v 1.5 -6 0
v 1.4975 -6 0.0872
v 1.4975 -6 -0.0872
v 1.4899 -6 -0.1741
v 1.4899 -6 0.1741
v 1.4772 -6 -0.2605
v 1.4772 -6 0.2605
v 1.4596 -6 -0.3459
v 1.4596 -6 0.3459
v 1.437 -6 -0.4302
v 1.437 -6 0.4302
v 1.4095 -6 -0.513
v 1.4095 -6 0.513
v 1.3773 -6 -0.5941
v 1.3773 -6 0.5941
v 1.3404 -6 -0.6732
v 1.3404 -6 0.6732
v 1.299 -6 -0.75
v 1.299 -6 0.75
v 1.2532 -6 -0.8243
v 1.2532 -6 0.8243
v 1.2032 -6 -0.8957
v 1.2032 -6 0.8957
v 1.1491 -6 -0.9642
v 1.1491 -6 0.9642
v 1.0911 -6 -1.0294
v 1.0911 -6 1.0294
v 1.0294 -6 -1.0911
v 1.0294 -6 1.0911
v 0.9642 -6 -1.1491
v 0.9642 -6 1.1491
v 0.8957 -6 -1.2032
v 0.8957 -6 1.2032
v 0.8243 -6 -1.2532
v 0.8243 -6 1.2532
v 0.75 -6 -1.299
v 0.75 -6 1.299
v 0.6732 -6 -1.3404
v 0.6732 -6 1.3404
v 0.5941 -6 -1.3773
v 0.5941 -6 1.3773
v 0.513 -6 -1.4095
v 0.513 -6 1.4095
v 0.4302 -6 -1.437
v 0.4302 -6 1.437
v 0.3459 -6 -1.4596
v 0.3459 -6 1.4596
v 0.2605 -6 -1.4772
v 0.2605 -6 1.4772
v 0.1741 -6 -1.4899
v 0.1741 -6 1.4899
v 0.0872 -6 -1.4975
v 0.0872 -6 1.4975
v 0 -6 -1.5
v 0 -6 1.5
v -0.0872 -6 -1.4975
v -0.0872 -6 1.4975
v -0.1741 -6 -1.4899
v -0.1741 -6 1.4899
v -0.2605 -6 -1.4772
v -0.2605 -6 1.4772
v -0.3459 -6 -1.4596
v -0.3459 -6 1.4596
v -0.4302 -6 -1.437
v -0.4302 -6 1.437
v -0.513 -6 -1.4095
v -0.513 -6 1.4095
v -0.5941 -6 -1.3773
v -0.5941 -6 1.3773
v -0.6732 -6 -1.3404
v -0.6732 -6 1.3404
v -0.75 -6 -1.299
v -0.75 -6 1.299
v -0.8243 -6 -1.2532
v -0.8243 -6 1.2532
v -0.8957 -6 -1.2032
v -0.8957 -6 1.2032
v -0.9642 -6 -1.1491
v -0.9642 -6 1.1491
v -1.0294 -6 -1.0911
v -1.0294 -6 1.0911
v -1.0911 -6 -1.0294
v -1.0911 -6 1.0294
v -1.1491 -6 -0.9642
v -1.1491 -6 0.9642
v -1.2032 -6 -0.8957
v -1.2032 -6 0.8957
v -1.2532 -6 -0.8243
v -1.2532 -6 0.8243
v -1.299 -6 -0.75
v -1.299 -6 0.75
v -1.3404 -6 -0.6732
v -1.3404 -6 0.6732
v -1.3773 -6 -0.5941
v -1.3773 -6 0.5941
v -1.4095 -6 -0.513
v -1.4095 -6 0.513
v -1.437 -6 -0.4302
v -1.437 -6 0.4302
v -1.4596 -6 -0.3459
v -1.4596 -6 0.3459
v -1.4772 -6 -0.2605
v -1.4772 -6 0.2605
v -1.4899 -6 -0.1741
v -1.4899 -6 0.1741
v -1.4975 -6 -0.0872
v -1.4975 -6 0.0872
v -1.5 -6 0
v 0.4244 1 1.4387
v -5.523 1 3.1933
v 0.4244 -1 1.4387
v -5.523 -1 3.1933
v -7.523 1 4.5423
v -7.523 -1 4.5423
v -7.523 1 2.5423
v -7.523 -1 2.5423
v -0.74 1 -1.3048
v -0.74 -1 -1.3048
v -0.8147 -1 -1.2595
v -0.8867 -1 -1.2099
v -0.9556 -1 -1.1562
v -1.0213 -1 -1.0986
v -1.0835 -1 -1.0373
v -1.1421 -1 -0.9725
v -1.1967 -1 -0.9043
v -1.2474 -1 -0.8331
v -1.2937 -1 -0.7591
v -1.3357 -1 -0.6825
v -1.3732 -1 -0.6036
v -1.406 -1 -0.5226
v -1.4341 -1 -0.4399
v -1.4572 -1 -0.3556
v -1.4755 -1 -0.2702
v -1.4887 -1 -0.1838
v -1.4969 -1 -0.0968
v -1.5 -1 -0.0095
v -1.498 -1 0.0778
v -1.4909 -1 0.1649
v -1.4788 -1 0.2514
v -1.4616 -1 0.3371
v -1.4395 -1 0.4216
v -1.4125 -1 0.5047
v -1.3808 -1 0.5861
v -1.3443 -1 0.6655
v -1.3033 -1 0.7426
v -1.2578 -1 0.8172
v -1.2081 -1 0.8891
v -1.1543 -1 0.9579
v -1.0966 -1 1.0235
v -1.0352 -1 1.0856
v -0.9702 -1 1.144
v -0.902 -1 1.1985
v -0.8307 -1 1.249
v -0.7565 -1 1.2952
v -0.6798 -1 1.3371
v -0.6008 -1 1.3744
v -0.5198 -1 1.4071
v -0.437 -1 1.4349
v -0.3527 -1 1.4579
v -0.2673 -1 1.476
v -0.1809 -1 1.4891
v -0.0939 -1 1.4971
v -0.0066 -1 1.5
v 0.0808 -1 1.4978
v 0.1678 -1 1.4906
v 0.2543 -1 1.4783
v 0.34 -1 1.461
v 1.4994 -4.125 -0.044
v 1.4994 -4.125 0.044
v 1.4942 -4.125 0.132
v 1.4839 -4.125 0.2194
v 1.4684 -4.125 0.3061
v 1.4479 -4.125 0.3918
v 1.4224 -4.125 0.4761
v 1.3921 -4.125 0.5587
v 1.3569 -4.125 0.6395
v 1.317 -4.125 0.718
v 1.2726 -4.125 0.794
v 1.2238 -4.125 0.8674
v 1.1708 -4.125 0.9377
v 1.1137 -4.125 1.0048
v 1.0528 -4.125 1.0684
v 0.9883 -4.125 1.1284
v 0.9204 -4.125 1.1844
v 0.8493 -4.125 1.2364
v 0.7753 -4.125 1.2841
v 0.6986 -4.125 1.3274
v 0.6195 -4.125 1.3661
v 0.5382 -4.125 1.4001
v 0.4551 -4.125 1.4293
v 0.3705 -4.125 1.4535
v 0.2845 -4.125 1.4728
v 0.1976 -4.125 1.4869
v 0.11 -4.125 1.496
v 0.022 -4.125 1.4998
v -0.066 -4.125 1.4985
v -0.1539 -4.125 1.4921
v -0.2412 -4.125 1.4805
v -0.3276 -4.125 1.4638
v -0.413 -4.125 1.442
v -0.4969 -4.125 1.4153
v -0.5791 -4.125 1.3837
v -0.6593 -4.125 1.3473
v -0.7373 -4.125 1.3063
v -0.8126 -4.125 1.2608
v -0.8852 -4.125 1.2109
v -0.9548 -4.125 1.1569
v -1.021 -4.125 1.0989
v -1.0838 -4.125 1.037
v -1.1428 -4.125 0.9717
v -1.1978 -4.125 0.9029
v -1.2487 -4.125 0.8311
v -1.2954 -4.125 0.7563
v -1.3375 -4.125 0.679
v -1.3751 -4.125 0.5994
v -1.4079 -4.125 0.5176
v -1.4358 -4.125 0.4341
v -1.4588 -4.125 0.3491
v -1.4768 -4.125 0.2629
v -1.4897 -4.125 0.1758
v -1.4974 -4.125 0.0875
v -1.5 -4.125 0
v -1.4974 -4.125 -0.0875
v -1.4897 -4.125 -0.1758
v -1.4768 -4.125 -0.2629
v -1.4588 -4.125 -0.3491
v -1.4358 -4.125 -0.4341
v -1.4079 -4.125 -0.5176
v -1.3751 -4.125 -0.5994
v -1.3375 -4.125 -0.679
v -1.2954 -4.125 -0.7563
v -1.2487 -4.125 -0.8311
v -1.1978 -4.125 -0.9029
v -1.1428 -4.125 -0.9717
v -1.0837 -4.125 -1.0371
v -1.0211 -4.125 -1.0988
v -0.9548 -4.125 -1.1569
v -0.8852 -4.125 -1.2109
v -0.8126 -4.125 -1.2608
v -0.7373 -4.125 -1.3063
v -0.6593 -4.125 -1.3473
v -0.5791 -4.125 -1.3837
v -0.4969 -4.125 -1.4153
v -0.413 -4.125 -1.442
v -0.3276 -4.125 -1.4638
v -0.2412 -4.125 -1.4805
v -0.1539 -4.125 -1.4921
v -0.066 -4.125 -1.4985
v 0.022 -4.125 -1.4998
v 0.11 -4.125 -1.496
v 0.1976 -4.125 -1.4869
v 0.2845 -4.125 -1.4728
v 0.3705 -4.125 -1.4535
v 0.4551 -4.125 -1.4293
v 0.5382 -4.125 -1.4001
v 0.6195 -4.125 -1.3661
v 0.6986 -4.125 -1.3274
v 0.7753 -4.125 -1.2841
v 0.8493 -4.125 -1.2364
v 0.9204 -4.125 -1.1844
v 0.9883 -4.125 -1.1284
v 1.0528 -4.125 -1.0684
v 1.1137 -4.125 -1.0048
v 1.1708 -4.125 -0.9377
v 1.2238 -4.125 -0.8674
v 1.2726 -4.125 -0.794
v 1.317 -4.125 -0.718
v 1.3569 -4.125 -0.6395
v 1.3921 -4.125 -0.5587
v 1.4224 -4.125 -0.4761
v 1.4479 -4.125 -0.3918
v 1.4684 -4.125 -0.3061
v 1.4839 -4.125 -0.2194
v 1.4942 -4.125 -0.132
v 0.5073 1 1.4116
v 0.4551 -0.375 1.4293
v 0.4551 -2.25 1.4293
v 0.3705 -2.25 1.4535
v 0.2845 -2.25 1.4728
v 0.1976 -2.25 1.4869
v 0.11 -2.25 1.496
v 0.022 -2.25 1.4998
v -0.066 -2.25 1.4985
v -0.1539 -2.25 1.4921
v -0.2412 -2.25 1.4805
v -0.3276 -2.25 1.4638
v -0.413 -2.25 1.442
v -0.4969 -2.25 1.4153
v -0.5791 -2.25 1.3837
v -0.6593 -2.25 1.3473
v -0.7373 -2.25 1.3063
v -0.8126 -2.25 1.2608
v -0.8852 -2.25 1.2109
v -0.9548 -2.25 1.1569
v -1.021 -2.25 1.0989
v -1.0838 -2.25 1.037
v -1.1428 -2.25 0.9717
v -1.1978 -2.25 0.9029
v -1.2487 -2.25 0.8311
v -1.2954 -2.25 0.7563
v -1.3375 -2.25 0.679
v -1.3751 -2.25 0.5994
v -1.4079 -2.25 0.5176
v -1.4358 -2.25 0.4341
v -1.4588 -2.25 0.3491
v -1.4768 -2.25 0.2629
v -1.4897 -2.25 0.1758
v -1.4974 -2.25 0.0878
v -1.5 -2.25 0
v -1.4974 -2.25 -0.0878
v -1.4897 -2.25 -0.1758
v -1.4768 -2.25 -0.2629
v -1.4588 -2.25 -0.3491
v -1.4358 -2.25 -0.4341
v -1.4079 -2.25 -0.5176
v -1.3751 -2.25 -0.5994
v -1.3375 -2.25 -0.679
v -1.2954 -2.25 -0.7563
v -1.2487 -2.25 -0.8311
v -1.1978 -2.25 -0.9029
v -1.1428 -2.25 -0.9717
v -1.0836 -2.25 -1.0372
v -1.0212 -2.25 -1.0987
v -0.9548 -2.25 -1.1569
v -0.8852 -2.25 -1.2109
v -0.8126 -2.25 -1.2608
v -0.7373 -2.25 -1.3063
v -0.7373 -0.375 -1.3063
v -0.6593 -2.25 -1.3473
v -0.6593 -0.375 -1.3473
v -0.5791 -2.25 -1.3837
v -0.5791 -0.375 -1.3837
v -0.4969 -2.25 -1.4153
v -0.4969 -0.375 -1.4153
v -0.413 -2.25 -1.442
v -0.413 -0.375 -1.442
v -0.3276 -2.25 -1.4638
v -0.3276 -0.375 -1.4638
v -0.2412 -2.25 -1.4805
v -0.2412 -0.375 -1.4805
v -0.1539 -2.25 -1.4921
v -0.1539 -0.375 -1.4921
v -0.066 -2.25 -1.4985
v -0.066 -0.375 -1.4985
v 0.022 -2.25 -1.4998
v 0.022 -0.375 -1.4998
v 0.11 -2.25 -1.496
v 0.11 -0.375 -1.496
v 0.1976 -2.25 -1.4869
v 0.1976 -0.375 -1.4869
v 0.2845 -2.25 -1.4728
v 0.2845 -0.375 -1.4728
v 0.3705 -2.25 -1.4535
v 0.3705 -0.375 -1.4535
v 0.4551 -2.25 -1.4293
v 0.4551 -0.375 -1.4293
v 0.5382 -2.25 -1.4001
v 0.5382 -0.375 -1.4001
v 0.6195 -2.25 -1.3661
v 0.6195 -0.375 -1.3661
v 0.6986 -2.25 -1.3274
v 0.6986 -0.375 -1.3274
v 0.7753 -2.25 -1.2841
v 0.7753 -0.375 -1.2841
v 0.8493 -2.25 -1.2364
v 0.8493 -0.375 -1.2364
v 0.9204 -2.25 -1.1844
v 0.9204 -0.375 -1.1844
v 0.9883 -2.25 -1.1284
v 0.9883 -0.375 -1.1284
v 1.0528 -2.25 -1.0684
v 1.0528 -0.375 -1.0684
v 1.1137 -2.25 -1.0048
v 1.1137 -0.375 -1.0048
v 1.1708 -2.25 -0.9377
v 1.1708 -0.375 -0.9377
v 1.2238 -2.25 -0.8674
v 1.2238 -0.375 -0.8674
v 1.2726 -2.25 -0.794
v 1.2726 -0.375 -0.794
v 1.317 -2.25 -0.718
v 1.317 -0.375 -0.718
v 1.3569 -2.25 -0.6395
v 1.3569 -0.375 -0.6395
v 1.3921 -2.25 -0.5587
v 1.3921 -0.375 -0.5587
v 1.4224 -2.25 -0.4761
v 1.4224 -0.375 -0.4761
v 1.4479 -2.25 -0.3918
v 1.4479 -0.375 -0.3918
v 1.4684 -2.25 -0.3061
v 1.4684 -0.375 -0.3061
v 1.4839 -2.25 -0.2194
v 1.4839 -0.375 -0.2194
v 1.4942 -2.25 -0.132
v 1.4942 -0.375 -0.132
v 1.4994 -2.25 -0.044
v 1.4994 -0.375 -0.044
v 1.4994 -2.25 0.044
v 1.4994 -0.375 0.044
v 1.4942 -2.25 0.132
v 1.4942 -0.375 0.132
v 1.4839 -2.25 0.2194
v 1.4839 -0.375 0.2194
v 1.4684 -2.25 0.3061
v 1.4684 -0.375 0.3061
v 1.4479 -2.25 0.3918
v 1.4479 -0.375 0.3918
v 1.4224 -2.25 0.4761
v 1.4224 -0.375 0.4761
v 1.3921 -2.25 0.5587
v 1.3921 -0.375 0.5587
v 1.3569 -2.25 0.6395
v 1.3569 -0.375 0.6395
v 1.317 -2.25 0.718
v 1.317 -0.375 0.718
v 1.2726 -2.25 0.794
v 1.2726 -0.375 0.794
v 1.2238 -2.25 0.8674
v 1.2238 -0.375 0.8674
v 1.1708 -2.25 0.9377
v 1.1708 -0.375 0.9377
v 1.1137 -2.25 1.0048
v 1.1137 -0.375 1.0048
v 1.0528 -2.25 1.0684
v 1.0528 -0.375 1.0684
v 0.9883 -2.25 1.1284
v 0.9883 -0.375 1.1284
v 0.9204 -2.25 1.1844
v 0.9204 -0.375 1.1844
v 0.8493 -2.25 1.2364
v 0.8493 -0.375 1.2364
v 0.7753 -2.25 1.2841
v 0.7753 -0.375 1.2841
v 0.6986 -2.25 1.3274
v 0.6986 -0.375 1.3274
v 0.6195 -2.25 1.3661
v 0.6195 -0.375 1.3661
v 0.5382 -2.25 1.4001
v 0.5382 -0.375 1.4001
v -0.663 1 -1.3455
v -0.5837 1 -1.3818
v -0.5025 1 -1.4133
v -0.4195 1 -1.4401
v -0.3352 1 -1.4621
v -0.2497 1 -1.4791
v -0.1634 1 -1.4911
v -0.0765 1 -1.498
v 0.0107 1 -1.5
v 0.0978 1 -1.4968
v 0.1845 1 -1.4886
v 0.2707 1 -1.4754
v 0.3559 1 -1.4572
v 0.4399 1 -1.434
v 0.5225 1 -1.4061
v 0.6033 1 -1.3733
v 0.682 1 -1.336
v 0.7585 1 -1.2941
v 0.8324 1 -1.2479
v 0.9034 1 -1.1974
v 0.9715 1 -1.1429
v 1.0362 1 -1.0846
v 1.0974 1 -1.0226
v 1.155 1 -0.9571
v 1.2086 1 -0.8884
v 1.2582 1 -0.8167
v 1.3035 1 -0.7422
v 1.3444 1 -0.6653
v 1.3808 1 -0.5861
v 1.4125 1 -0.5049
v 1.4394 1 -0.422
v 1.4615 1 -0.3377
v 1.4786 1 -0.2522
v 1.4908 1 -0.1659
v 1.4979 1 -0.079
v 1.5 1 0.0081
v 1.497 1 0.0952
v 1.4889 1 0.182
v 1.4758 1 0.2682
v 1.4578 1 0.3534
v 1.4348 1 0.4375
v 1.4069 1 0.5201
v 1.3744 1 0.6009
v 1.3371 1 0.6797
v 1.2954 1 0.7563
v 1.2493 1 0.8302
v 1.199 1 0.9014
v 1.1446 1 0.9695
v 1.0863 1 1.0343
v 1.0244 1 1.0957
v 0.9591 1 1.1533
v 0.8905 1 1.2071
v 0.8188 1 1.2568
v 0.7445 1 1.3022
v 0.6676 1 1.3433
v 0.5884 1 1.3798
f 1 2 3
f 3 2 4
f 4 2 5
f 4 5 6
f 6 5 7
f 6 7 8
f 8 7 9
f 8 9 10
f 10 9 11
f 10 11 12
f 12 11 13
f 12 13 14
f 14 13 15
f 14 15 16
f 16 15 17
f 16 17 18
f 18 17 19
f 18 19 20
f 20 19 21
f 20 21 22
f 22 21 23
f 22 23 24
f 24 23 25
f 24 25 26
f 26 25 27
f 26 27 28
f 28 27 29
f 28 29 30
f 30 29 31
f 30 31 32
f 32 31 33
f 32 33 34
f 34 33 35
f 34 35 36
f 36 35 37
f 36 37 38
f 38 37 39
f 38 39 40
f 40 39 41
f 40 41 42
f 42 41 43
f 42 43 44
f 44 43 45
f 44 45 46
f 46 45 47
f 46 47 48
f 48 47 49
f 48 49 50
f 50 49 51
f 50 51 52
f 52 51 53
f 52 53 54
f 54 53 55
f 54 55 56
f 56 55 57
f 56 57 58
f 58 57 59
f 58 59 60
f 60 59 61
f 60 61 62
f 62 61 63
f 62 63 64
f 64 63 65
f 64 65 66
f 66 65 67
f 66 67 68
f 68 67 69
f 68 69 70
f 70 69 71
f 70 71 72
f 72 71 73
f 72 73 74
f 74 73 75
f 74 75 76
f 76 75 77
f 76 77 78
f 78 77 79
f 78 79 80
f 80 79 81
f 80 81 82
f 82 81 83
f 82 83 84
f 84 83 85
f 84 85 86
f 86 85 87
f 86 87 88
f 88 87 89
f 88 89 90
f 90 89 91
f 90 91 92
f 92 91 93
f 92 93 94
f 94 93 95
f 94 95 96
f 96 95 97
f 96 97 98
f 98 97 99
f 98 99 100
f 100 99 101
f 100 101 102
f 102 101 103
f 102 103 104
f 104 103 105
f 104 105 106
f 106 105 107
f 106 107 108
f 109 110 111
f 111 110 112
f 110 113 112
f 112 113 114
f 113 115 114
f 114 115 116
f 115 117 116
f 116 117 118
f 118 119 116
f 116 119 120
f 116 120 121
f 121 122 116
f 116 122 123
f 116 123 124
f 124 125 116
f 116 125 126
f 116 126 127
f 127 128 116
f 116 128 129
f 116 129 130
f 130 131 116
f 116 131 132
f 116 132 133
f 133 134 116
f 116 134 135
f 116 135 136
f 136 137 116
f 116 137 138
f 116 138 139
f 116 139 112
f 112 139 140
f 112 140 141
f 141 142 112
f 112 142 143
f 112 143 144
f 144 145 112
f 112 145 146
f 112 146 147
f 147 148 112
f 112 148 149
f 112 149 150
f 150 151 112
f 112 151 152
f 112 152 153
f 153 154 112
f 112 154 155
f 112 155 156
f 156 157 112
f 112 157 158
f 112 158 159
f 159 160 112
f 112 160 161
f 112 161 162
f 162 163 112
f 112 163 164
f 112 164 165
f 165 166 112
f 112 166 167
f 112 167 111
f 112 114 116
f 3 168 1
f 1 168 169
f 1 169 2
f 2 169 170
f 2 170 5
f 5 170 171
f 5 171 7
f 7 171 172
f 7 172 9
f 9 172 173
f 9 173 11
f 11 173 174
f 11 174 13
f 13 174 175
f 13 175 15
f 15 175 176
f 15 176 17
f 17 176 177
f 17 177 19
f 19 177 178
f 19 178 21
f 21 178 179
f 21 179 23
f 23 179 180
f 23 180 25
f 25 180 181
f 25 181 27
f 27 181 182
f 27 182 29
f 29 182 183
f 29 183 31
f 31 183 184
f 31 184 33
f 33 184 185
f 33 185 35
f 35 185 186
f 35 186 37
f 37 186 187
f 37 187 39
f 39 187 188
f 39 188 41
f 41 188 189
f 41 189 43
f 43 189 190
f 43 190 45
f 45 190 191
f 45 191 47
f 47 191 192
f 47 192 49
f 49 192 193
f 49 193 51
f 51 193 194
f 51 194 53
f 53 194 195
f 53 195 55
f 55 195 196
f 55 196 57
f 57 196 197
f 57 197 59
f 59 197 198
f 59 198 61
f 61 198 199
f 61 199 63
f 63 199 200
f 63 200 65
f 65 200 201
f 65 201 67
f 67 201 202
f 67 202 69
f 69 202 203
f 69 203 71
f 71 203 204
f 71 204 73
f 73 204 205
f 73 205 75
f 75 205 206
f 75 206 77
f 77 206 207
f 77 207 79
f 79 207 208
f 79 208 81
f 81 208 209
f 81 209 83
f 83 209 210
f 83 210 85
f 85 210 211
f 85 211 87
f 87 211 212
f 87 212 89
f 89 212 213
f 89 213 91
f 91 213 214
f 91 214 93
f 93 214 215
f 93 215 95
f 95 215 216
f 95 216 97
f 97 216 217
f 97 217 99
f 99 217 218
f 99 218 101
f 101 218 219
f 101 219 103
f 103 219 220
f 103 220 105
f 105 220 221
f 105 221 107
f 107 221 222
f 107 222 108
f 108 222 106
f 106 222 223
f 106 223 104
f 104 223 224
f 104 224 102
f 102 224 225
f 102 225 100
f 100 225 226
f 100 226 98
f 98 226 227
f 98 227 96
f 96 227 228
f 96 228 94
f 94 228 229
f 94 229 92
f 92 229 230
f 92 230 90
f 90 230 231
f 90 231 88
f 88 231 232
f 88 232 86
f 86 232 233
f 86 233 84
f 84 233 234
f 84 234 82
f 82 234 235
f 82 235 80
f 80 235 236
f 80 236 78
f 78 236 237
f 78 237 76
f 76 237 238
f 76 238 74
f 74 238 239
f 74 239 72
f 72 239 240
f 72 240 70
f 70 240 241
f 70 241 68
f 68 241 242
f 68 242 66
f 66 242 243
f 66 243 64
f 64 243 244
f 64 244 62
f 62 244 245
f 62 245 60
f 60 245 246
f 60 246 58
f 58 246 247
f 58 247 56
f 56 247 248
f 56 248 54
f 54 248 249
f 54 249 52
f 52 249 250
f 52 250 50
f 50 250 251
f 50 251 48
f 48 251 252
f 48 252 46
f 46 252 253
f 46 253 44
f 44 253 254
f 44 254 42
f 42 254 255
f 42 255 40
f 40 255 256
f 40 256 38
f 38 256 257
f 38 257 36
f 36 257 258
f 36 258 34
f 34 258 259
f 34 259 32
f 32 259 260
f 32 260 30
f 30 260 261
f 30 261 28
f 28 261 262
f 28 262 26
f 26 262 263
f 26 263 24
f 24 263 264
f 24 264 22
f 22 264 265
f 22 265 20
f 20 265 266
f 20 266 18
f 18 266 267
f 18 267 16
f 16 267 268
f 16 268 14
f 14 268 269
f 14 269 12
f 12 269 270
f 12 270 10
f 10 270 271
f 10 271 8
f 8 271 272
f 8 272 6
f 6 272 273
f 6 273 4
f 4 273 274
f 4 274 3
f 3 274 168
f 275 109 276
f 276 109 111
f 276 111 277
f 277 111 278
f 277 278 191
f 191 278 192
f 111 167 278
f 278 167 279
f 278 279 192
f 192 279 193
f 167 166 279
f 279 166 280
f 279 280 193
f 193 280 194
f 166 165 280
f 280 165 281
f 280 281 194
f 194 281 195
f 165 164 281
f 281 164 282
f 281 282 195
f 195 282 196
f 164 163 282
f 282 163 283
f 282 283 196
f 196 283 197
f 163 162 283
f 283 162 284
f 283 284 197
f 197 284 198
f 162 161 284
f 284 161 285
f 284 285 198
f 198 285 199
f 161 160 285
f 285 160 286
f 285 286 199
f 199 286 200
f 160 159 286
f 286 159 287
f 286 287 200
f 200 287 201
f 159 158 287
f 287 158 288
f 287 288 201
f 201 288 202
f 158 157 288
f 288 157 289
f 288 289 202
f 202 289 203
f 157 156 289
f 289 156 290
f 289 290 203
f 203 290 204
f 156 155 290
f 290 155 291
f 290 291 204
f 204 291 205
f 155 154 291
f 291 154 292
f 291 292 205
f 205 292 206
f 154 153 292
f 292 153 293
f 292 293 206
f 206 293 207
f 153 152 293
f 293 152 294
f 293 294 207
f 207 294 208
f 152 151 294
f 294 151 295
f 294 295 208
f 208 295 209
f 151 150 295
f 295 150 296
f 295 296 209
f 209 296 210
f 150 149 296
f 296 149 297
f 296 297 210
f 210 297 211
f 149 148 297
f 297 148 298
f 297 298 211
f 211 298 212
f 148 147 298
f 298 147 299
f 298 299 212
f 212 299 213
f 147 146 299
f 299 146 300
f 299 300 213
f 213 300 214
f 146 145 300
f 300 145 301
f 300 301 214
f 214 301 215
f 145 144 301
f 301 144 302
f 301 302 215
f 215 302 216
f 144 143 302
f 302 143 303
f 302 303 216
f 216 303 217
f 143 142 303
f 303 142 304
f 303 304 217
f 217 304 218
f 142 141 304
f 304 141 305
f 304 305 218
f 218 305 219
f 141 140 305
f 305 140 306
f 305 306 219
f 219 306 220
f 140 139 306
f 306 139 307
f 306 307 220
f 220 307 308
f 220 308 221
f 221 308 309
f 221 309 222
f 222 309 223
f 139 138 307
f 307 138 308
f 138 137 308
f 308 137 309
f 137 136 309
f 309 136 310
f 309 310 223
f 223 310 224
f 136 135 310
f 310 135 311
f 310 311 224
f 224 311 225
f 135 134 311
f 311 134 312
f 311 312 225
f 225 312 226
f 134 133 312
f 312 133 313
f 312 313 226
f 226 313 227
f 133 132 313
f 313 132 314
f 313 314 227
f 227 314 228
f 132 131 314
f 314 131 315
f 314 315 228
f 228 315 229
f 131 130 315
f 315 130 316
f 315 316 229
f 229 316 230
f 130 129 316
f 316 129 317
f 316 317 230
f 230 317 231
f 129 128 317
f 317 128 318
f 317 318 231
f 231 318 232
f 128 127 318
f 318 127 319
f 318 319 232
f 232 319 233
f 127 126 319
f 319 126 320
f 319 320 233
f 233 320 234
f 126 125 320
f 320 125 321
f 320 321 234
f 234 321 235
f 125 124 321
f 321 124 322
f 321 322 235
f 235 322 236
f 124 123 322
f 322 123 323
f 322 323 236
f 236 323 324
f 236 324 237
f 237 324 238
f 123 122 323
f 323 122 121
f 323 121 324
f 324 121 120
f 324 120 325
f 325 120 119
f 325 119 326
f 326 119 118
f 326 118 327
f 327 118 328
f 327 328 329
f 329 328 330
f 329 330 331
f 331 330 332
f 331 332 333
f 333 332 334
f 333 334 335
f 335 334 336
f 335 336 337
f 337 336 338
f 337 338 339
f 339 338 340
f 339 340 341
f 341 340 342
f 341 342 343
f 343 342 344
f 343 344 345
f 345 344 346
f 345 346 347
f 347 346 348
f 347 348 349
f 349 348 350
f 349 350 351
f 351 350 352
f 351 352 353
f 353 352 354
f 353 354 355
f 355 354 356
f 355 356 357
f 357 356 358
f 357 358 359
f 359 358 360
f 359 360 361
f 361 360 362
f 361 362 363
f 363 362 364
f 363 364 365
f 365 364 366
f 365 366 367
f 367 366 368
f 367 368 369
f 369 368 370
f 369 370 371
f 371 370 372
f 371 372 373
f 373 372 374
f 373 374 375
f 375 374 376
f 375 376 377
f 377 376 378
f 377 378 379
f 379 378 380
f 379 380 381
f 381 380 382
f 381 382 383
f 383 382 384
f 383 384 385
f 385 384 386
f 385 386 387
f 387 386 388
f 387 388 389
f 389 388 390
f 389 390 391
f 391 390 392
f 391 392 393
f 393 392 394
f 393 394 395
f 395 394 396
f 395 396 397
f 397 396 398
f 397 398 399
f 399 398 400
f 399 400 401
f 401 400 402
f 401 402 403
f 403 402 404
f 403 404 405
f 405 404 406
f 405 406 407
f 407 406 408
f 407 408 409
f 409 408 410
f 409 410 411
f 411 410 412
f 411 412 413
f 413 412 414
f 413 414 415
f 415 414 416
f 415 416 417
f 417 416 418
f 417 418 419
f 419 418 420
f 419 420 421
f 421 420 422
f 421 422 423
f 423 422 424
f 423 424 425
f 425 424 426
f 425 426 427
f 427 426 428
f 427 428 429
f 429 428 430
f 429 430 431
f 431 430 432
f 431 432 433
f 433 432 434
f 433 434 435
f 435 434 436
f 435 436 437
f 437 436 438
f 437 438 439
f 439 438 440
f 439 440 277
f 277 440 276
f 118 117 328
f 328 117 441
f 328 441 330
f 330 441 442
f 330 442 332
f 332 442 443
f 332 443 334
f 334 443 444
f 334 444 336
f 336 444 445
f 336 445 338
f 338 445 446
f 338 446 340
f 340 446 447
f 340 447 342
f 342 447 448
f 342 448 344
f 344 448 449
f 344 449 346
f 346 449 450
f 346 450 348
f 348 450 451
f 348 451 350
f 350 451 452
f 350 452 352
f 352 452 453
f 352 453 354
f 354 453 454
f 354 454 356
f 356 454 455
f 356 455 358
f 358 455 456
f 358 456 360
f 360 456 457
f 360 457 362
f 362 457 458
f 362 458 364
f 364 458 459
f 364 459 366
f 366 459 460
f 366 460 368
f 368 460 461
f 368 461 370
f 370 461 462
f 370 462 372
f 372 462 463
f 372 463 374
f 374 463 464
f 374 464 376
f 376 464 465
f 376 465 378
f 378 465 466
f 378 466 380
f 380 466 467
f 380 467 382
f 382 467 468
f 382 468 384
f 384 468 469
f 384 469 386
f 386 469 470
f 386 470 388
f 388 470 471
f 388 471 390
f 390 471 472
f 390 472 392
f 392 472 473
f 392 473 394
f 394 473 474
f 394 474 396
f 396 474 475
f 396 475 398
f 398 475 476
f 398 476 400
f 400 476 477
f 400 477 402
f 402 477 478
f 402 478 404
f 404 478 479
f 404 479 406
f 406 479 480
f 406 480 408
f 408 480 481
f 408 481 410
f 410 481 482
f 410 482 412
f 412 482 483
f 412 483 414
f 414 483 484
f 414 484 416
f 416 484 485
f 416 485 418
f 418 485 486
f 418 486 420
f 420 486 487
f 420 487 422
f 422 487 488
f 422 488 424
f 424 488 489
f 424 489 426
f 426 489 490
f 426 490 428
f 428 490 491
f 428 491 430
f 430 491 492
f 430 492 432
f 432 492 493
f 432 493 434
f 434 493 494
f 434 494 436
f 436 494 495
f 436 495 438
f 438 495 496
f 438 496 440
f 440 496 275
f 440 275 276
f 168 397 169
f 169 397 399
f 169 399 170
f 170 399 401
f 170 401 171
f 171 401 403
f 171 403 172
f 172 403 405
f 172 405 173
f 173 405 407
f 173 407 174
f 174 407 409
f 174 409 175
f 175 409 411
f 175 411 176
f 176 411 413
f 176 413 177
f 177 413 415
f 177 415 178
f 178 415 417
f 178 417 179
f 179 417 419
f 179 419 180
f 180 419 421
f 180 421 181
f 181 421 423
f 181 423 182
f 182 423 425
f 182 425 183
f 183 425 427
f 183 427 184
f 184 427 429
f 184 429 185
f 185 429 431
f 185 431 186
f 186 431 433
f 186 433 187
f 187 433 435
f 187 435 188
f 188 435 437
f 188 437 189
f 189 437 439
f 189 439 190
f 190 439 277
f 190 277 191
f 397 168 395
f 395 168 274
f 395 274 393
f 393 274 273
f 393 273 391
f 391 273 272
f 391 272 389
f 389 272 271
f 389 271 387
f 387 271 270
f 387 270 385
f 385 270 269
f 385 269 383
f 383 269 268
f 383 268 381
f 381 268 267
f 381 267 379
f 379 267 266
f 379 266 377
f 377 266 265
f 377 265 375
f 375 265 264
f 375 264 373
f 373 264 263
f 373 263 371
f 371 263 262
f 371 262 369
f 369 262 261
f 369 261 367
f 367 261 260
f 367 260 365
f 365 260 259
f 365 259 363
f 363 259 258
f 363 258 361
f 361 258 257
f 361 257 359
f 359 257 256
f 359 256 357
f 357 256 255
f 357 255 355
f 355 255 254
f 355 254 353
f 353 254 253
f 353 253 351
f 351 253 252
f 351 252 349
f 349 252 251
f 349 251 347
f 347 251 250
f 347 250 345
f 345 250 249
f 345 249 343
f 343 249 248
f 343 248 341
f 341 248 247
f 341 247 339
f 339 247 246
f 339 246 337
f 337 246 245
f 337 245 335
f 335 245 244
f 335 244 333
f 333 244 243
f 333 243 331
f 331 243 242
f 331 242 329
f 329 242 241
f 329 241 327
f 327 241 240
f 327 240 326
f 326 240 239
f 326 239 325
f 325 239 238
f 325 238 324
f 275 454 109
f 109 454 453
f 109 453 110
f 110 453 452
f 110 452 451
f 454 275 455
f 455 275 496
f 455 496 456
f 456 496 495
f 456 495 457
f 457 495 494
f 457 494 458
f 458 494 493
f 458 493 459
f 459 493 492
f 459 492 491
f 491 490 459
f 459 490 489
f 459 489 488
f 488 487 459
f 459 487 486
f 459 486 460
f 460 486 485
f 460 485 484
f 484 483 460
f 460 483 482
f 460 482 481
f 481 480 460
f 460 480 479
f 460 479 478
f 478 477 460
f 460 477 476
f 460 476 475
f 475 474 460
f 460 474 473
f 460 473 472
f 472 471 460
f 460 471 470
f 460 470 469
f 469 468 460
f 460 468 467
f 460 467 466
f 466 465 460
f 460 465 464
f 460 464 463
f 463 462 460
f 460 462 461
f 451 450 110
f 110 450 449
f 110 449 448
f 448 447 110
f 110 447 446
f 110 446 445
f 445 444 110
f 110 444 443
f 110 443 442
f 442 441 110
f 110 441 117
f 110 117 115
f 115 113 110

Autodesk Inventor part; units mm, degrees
ref_plane "YZ Plane" through (0, 0, 0) normal (1, 0, 0) x (0, 1, 0)
ref_plane "XZ Plane" through (0, 0, 0) normal (0, 1, 0) x (-1, 0, 0)
ref_plane "XY Plane" through (0, 0, 0) normal (0, 0, 1) x (1, 0, 0)
sketch "Sketch1" plane through (0, 0, 0) normal (0, 1, 0) x (-1, 0, 0)
  circle A0 centre (0, 0) radius 1.5
  line L0 (0.74, -1.3048) -> (7.523, 2.5423)
  line L1 (5.523, 3.1933) -> (-0.4244, 1.4387)
  line L2 (5.523, 3.1933) -> (7.523, 4.5423)
  line L3 (7.523, 4.5423) -> (7.523, 2.5423)
  line L4 (7.523, 3.5) -> (7.523, 4.5) projected
  line L5 (7.4579, 4.5004) -> (6.1505, 3.6591) projected
  point P0 (7.523, 3.5423)
  dimension "d2" = 3
  dimension "d4" = 2
  dimension "d7" = 7.523
  dimension "d8" = 4.5423
  dimension "d9" = 56
  dimension "d10" = 2
extrude "Extrusion1" add sketch "Sketch1" along normal mid plane 2
sketch "Sketch2" plane through (0, -1, 0) normal (0, 1, 0) x (1, 0, 0)
  arc A0 (0.4244, -1.4387) -> (-0.74, 1.3048) centre (0, 0) ccw projected
  circle A1 centre (0, 0) radius 1.5
extrude "Extrusion2" add sketch "Sketch2" against normal blind 5
properties part number "Pawl"
